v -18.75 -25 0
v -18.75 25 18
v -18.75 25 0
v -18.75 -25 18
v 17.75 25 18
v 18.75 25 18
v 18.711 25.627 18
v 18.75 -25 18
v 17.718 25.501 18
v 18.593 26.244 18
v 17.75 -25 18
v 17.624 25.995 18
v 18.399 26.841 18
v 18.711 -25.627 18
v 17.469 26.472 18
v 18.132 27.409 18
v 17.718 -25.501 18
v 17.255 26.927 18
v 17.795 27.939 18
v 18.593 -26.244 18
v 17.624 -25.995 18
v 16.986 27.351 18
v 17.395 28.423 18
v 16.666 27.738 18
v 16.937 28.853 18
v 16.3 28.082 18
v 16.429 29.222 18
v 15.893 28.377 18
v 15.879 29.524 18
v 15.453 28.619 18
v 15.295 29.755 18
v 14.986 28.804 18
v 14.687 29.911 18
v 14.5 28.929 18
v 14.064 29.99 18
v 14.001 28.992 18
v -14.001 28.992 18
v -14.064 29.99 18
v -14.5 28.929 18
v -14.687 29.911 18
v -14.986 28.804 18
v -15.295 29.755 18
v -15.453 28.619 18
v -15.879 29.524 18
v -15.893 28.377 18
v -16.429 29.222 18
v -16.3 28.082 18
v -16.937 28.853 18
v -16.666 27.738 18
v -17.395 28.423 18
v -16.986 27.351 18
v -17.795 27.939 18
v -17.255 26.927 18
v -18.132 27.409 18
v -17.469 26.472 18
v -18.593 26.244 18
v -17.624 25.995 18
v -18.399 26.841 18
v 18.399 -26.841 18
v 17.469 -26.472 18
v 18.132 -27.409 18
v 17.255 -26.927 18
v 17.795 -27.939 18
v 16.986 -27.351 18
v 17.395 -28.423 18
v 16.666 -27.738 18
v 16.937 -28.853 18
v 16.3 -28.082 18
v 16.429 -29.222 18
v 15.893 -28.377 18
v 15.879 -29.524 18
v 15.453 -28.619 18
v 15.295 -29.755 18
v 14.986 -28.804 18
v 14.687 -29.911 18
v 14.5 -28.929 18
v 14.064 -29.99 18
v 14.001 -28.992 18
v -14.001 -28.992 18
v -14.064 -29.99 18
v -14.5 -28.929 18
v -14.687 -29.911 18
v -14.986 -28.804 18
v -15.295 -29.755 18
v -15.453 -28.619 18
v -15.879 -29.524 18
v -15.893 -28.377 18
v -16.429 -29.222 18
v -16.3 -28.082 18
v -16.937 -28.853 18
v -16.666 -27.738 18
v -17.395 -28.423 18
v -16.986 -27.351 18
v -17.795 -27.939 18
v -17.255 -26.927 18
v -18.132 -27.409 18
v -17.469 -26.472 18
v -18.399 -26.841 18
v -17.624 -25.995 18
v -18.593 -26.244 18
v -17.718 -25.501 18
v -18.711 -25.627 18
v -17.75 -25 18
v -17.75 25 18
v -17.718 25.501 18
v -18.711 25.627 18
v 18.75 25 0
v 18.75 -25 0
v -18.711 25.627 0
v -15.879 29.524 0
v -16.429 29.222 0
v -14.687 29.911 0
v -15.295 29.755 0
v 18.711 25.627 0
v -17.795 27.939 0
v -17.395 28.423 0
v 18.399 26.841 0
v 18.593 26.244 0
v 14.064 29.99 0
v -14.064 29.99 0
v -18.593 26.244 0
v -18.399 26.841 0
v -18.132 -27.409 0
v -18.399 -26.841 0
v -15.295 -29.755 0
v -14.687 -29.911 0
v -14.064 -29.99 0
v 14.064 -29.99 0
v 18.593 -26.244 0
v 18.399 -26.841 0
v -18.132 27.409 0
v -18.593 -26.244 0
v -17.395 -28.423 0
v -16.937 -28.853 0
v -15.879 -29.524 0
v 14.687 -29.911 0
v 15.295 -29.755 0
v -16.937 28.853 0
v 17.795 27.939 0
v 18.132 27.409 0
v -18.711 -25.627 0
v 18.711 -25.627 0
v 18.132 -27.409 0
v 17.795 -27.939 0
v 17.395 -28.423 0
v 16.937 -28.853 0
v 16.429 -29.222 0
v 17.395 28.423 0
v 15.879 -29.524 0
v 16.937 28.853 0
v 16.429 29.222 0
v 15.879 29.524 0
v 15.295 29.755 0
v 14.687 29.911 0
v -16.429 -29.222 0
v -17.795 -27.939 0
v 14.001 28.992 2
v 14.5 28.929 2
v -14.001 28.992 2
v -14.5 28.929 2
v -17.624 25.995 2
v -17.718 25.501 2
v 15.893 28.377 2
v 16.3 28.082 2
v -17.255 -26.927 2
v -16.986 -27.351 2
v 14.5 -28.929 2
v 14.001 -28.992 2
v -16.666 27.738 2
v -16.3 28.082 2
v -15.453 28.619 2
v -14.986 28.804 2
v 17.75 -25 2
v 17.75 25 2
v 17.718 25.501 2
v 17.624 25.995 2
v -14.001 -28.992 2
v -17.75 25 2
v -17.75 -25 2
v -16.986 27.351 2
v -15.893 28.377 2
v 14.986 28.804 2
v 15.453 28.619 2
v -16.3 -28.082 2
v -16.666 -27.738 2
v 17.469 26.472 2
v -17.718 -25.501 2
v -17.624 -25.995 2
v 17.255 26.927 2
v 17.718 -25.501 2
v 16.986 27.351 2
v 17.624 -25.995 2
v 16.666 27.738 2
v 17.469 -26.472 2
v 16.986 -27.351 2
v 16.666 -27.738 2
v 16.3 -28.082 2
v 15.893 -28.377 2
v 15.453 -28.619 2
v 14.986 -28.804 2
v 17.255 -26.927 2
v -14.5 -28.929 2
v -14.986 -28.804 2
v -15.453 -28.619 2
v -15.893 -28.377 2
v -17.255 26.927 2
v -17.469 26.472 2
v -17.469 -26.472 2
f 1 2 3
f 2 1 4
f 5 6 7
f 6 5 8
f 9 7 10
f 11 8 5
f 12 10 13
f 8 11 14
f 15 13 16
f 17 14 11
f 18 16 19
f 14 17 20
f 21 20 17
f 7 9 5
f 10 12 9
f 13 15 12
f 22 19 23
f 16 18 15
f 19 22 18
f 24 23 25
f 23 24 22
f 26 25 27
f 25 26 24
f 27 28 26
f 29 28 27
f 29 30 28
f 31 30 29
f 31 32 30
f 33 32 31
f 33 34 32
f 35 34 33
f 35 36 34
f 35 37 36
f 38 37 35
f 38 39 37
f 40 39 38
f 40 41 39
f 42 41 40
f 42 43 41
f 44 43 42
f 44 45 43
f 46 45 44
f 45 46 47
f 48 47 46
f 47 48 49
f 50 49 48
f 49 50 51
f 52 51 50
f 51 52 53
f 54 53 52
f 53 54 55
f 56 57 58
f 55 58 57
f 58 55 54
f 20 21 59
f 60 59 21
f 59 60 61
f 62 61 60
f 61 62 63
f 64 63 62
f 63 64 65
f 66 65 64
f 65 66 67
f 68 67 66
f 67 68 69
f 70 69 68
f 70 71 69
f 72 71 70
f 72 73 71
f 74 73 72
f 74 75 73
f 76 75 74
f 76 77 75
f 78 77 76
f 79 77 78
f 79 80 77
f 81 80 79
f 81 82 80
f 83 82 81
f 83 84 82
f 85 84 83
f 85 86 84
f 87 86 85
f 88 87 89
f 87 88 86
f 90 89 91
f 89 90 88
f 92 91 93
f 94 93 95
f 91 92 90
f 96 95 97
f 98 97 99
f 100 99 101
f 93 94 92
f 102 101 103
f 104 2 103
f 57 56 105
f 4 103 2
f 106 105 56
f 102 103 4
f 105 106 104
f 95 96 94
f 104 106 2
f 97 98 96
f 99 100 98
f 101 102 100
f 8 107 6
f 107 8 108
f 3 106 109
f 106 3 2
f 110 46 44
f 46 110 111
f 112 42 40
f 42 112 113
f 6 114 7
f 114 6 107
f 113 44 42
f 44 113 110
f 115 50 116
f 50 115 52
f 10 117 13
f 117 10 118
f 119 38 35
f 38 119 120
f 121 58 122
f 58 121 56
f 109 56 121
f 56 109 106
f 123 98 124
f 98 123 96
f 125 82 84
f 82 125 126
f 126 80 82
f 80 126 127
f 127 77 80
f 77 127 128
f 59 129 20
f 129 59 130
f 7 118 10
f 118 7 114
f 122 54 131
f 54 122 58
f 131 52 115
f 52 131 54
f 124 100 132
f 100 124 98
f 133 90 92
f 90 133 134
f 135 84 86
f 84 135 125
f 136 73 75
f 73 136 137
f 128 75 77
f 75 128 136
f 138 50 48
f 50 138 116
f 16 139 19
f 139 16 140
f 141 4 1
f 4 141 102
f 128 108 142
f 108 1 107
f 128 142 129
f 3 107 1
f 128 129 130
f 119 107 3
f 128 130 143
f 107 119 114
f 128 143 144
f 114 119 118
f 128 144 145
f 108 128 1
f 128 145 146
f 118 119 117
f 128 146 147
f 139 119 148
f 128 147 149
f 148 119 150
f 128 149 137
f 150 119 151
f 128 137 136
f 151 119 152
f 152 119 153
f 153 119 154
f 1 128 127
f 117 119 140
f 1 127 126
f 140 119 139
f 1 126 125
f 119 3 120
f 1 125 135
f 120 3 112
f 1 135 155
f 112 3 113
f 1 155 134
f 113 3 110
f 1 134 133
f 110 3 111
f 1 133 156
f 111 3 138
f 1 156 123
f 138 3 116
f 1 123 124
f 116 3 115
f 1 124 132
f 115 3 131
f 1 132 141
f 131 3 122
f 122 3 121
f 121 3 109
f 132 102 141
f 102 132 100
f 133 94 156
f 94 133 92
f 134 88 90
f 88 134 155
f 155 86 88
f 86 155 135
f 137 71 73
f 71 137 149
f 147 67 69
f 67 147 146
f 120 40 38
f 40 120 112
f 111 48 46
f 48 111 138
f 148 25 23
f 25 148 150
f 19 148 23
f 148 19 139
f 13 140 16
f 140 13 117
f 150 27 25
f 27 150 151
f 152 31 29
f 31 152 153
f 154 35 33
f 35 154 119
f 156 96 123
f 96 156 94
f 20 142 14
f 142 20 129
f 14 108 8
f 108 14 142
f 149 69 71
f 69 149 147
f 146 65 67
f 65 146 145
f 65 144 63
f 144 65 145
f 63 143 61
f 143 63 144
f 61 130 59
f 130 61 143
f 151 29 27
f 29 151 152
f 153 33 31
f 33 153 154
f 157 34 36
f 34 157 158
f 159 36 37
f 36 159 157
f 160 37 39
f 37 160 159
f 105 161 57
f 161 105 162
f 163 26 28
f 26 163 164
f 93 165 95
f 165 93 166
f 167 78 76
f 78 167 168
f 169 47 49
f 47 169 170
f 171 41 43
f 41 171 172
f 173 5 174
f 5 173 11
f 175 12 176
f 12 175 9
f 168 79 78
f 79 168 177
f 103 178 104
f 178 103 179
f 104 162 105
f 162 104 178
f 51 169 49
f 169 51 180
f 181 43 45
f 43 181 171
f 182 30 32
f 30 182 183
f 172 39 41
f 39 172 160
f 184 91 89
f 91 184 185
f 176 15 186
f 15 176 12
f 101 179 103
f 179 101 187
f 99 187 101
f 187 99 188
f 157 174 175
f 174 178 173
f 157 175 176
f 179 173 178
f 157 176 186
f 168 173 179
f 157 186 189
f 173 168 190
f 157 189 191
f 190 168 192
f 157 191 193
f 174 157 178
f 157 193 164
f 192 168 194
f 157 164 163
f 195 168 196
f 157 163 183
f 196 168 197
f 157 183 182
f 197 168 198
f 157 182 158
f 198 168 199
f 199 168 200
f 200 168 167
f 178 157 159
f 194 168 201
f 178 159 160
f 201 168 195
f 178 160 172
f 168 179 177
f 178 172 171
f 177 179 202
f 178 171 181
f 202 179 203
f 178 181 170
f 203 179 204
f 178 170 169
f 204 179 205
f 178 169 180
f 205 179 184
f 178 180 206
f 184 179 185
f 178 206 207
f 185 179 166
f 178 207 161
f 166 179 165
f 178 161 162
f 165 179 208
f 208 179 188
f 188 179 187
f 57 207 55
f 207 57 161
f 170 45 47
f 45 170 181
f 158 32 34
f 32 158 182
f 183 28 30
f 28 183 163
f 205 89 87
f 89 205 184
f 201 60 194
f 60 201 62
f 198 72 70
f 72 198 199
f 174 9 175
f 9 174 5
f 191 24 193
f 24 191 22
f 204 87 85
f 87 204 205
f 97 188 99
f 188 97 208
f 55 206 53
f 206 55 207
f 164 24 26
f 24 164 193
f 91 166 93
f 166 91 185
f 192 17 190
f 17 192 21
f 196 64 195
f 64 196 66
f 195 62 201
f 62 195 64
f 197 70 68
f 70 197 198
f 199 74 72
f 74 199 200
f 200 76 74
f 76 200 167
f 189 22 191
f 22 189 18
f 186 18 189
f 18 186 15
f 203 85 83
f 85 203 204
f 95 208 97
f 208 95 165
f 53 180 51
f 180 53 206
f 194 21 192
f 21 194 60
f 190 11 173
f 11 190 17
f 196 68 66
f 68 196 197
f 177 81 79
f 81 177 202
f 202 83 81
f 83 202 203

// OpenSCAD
$fn = 50;


difference() {
	union() {
		hull() {
			translate(v = [-13.7500000000, 25.0000000000, 0]) {
				cylinder(h = 18, r = 5);
			}
			translate(v = [13.7500000000, 25.0000000000, 0]) {
				cylinder(h = 18, r = 5);
			}
			translate(v = [-13.7500000000, -25.0000000000, 0]) {
				cylinder(h = 18, r = 5);
			}
			translate(v = [13.7500000000, -25.0000000000, 0]) {
				cylinder(h = 18, r = 5);
			}
		}
	}
	union() {
		translate(v = [0, 0, 2]) {
			hull() {
				translate(v = [-13.7500000000, 25.0000000000, 0]) {
					cylinder(h = 16, r = 4);
				}
				translate(v = [13.7500000000, 25.0000000000, 0]) {
					cylinder(h = 16, r = 4);
				}
				translate(v = [-13.7500000000, -25.0000000000, 0]) {
					cylinder(h = 16, r = 4);
				}
				translate(v = [13.7500000000, -25.0000000000, 0]) {
					cylinder(h = 16, r = 4);
				}
			}
		}
	}
}
